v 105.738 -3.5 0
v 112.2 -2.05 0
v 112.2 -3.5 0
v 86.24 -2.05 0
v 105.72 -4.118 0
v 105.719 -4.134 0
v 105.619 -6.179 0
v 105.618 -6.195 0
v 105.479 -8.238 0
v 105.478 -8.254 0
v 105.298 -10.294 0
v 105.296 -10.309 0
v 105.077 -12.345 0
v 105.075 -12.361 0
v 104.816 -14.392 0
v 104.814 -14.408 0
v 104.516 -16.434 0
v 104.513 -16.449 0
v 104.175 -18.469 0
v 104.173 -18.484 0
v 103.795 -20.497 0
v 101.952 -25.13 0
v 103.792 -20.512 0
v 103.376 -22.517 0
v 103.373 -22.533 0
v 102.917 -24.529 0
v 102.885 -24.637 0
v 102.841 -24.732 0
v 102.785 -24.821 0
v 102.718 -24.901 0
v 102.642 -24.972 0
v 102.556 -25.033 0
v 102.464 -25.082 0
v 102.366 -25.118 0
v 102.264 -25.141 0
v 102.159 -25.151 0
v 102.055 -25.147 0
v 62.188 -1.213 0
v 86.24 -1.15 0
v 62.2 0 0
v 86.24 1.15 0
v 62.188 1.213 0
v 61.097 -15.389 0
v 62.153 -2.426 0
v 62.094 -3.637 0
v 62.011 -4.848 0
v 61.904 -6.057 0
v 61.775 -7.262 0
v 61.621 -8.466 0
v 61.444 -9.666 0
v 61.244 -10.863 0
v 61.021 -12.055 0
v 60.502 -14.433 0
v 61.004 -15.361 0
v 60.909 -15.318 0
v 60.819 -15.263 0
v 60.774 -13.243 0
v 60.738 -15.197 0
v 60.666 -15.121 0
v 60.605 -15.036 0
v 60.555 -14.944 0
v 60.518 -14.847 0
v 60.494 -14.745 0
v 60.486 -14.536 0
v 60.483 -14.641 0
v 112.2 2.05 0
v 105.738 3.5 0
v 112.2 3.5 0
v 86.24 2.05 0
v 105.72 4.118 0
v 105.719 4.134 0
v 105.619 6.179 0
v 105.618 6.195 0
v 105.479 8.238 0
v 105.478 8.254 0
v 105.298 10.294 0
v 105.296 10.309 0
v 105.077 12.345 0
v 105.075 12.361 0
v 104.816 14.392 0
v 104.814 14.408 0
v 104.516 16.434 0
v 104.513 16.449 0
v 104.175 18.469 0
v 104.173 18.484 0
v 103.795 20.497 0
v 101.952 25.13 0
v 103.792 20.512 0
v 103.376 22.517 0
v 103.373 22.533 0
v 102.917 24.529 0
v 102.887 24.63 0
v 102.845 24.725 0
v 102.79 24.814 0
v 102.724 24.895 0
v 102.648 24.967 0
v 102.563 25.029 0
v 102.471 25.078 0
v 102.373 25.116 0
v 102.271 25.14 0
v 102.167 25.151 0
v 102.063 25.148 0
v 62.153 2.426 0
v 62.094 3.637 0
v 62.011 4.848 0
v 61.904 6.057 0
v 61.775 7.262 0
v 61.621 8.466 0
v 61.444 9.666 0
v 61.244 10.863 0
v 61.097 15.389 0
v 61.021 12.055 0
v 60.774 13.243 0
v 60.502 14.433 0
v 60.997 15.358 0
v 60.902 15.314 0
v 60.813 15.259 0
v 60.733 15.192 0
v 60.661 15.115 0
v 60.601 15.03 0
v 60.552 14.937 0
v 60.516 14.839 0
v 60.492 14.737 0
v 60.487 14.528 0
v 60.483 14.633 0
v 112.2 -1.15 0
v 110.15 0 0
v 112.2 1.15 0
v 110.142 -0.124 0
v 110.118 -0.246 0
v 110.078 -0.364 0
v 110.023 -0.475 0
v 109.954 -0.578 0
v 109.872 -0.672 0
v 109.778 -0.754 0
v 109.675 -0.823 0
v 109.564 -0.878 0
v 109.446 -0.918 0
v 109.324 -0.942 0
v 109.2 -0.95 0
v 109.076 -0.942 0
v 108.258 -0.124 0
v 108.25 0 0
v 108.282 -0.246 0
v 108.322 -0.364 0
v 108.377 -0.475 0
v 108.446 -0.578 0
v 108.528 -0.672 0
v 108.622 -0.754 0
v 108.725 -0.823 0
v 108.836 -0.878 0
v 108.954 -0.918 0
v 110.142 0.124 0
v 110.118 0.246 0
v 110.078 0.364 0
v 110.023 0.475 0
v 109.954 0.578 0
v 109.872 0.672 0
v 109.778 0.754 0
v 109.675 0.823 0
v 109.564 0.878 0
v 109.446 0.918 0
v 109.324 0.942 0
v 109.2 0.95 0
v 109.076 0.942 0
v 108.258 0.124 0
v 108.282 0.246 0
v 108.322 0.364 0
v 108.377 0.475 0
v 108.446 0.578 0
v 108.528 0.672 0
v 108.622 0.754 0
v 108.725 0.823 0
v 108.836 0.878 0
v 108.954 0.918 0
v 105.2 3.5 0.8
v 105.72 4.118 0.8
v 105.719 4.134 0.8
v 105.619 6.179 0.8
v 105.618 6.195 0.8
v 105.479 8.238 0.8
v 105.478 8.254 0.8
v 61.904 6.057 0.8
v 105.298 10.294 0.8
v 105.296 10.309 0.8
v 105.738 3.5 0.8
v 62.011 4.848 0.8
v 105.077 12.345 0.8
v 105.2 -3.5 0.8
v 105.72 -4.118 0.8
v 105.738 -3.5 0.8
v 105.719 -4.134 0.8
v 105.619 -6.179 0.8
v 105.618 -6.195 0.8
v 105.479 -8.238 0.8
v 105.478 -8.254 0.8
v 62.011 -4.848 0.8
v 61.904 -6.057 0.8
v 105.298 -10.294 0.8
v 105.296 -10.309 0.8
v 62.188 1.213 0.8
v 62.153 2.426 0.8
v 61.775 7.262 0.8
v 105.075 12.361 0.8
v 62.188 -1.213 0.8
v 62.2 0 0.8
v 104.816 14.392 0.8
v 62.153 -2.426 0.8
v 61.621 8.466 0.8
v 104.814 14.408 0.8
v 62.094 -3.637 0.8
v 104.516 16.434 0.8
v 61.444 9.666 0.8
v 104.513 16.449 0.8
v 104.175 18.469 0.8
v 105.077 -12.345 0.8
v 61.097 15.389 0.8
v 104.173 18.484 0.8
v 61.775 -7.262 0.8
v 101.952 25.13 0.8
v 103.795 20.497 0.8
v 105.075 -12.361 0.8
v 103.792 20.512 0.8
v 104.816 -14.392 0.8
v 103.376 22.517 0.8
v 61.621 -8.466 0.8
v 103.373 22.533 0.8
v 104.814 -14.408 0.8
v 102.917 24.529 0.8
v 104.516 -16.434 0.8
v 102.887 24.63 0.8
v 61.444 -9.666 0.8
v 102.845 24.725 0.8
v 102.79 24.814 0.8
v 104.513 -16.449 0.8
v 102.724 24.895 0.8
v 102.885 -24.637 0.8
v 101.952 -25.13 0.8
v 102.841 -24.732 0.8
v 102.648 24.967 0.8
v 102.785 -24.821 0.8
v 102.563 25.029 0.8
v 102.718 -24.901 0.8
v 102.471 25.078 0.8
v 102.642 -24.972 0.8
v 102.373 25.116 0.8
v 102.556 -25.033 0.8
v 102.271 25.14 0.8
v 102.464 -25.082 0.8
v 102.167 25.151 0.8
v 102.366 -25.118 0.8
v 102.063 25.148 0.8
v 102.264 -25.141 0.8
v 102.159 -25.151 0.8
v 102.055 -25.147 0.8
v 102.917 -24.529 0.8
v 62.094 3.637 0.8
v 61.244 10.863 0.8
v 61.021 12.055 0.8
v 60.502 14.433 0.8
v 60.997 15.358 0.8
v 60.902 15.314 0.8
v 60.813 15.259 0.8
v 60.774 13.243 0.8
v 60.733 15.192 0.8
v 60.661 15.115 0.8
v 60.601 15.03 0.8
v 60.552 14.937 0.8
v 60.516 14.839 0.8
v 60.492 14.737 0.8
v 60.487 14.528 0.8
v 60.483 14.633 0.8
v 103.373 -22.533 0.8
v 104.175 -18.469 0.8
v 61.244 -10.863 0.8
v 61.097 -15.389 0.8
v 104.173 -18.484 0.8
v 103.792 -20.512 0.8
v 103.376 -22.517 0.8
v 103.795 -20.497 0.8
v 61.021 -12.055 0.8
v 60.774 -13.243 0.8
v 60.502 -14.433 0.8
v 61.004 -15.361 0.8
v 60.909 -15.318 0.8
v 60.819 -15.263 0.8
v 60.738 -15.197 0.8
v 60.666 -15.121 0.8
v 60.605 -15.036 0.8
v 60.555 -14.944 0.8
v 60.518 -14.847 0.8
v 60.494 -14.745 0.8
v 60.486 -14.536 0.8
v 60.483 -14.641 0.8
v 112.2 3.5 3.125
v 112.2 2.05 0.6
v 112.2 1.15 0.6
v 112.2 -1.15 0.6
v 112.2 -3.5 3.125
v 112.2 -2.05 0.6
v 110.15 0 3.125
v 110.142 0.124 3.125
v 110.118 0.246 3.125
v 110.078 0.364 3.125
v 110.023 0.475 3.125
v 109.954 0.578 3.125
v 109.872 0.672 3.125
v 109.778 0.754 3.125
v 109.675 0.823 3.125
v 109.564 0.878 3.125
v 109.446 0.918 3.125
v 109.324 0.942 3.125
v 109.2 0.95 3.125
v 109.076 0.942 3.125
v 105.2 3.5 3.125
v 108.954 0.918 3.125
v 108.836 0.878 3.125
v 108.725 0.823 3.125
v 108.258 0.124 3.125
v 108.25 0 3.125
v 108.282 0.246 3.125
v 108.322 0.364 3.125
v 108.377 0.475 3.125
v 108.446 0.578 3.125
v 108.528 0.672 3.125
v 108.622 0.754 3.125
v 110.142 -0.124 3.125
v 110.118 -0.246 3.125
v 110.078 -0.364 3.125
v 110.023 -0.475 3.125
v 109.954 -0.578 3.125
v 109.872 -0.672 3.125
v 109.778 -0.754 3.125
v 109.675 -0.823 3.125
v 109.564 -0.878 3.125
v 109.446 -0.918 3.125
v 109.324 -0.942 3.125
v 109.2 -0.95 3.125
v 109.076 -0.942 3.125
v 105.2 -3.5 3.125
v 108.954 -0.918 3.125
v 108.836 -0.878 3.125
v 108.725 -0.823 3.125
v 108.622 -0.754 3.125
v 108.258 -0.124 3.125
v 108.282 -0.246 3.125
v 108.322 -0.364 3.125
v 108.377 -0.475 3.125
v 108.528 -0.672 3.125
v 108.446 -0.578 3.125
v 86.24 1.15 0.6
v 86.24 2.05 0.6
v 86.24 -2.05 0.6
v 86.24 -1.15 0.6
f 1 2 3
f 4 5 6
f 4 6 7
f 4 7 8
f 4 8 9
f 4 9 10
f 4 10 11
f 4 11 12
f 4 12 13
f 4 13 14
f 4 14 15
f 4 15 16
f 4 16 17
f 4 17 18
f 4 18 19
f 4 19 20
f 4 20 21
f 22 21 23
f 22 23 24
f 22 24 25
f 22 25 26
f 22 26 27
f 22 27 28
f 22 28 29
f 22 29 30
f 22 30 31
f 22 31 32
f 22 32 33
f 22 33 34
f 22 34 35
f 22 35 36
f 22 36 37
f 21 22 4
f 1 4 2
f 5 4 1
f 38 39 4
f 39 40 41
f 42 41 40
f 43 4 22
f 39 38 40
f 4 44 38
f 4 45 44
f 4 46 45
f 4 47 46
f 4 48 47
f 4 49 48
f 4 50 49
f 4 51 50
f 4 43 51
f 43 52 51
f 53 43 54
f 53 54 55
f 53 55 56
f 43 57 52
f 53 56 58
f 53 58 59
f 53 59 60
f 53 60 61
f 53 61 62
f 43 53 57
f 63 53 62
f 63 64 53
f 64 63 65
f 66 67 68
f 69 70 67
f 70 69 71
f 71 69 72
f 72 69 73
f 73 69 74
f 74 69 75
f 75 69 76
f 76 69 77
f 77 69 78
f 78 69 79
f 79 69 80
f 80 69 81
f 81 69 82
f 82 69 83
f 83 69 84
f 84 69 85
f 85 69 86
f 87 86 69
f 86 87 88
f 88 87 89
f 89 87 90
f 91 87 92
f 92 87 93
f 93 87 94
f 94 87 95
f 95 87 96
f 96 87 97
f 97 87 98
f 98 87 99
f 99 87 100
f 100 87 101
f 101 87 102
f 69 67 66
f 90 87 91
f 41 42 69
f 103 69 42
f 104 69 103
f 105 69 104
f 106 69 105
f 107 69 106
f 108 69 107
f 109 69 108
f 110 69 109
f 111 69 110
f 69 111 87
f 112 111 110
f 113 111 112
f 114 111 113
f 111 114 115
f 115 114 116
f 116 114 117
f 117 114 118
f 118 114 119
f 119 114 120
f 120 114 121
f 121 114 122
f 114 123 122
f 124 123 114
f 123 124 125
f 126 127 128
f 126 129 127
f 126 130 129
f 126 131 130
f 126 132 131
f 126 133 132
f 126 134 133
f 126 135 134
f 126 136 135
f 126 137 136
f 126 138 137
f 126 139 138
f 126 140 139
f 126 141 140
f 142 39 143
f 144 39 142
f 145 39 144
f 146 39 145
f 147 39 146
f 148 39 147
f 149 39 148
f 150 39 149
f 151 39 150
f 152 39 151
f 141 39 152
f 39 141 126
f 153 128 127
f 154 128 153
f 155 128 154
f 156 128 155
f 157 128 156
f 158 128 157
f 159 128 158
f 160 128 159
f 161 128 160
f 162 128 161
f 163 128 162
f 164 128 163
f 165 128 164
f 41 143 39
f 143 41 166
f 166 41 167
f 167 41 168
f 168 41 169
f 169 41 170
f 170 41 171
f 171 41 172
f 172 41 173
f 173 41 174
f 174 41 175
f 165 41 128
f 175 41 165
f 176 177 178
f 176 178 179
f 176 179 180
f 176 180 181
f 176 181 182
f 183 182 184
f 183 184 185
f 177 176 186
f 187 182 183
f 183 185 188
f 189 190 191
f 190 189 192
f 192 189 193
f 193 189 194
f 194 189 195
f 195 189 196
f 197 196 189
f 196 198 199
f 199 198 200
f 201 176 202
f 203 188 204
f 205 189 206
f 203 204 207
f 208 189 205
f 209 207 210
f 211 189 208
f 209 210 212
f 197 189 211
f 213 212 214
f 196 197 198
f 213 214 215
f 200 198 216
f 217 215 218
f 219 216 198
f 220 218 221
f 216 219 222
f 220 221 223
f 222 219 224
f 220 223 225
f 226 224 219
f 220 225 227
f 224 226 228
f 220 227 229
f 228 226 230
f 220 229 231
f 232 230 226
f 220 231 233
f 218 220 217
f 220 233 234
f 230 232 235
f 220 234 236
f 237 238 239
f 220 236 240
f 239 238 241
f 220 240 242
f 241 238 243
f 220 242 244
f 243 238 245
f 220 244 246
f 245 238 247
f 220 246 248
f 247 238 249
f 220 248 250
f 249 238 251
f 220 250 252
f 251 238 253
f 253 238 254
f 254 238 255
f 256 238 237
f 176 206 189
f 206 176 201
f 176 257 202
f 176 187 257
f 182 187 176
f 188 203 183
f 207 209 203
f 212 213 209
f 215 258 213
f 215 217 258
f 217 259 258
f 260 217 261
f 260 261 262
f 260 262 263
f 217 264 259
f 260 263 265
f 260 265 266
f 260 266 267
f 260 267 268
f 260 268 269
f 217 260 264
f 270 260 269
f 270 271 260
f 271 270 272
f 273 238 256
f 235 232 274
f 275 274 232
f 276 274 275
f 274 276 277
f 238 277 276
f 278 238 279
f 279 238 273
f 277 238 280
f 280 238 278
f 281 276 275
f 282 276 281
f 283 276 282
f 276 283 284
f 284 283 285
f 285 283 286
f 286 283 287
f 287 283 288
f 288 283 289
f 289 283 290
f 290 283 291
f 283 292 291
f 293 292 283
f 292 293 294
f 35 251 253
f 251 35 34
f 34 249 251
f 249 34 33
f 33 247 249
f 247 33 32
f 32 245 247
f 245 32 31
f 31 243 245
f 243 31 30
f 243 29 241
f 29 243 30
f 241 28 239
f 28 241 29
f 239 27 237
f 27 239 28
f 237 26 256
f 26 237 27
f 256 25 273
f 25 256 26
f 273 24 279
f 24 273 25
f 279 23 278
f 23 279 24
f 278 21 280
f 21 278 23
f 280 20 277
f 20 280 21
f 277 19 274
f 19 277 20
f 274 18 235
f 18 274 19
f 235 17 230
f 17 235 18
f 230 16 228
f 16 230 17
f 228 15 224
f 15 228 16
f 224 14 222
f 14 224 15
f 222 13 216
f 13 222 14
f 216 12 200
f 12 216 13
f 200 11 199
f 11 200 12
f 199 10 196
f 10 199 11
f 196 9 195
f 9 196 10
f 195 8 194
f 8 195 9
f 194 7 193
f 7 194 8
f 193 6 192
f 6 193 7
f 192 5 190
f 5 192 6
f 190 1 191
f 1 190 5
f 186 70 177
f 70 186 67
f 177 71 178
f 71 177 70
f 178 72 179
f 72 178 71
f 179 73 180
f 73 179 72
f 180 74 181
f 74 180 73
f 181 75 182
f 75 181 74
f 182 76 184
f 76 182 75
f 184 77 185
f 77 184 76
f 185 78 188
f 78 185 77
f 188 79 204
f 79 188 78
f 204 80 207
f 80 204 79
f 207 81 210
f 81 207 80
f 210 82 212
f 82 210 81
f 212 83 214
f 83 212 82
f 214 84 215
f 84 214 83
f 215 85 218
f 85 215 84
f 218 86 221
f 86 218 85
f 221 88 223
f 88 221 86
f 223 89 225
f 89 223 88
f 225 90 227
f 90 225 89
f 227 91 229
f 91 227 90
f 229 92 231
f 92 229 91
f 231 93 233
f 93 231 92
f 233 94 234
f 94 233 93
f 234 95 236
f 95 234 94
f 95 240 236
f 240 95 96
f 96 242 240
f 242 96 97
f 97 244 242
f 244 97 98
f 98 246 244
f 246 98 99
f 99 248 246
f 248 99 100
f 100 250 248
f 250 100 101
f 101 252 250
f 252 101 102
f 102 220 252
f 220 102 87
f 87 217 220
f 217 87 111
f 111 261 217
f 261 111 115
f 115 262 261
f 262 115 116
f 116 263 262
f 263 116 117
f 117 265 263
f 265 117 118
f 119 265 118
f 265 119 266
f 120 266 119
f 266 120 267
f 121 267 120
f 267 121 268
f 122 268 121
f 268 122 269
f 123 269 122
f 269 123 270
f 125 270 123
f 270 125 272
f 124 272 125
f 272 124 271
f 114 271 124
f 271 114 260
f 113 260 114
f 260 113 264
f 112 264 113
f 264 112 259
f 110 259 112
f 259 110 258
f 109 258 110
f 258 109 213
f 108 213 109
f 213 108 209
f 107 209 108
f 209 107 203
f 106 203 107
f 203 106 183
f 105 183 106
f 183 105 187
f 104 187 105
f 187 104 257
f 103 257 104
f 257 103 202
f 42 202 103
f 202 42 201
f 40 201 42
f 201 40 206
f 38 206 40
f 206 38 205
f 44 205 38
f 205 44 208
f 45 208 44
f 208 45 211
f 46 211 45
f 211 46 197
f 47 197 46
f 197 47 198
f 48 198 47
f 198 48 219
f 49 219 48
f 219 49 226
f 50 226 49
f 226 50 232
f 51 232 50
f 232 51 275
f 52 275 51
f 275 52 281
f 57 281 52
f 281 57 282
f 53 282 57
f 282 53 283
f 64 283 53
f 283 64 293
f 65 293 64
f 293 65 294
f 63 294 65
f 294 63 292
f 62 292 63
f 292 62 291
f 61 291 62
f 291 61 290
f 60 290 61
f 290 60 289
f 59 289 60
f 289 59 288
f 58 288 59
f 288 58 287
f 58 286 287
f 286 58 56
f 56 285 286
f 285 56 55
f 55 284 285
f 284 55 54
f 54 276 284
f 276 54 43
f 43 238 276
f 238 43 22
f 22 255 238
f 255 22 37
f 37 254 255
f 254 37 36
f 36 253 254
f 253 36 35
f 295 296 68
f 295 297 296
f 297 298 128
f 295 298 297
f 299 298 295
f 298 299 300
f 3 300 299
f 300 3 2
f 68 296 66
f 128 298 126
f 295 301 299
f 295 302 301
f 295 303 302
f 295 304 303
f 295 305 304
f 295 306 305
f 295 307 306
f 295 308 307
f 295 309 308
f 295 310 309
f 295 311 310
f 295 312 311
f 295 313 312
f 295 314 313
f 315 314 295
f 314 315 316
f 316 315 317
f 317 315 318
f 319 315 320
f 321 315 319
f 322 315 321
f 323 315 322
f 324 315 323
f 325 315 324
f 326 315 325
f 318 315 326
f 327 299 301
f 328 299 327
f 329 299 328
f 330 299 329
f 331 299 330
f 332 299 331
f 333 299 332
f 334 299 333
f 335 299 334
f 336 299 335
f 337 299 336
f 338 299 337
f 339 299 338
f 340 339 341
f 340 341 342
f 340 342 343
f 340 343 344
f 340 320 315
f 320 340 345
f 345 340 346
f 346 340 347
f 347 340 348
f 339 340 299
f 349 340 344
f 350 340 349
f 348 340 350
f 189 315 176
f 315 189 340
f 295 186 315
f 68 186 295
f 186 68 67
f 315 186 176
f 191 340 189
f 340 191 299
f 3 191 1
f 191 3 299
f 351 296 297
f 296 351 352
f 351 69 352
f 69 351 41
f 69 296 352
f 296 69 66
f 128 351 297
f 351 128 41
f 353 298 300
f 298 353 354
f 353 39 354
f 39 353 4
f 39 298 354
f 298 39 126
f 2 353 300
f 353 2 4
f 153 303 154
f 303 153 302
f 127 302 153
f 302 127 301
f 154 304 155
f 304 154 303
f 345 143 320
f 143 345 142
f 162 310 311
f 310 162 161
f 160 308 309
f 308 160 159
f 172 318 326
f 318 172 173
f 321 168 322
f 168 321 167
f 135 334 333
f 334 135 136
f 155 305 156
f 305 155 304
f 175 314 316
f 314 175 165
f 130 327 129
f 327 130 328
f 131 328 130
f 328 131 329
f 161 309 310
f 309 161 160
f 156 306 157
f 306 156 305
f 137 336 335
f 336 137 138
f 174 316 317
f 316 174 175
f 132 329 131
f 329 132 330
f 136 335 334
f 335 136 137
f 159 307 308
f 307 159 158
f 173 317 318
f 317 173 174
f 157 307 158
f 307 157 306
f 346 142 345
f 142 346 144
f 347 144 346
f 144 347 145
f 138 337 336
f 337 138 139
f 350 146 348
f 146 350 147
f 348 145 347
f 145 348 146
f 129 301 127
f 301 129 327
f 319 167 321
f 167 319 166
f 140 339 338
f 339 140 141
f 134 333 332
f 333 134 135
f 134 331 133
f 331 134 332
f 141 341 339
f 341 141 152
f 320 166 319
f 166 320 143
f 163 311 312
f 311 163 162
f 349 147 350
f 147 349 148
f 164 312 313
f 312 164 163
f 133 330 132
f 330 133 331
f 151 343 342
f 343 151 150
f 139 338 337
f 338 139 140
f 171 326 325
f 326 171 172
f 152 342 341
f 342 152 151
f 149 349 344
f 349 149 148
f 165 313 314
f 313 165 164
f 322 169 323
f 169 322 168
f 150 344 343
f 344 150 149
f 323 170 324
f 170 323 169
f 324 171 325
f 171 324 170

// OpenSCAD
// file: parameters.scad
// =============================================================================
// Gen-CF — nightly 2026-10-14 (physics_scorer, honest magpylib watts)
// Stator-only upgrade for an existing Gen-CA: the R84 arcs, hubs and Ø194 steel stay as they are; a new annular 12-bobbin stator with 4.65 mm copper (Gen-CD-style thin window) and r63–105 bobbins replaces the old r64–104 × 4.95 mm stator, together with a shorter gap sleeve and matching frame rods / bridges. Frame rods pushed to R108.5 for ≥1.0 mm web to the bays. No new magnets or steel. Scans showed no R84 stator beats Gen-CA’s own 8.492 W; this kit is the best distinct modular swap (≈8.41 W scan, ≈375 m).
// Clocking 0 deg (magnets N facing S) + D-flat keyed bore + index notch + flip-symmetric hole map.
// Windable 2-piece bobbin; turns = physics_scorer turns_fit; copper only between flanges.
// Steel back-iron: 2× Ø194 × 4.76 mm (3/16") mild-steel discs (steel_backiron_disc.dxf); magnets sit ON the steel
// (through-pockets) -> score with --back-iron. Night 2026-10-14.
// =============================================================================
topology            = "dual_rotor";

// --- Wire / winding (physics_scorer winding-fit) -------------------------------
wire_awg            = 26;
wire_od             = 0.45;     // insulated OD mm (bare 0.405)
fill_realistic      = 0.65;     // insulated-wire area / window (DENSE layered wind with a jig; scorer cap 0.65)
turns               = 347;       // = physics_scorer turns_fit (do NOT raise)
coil_former_type    = "bobbin";
coil_core_inset     = 18.26;     // radial copper build: hub = copper boundary inset by this
wind_build_axial    = 0.0;      // nothing proud of the flanges
wind_build_radial   = 0.0;

// --- Bobbin (base + lid) ---------------------------------------------------------
coil_id_r           = 63.00;    // copper boundary sector
coil_od_r           = 105.00;
span_deg            = 26.82;    // = pitch - 2*asin((wall+0.85)/coil_id_r) -> >=1.2 mm stator web
former_web          = 4.65;     // copper height between flanges (TALL copper: steel keeps Bz up)
flange_t            = 0.80;     // >= 0.8 mm FDM wall rule (tall winds push on the flanges)
wall                = 0.80;     // flange lip beyond copper
former_bare_h       = former_web + 2 * flange_t;
coil_envelope_h     = former_bare_h + 2 * wind_build_axial;
tab_w               = 7.0;
tab_len             = 7.0;
tab_h               = former_bare_h / 2;
pin_d               = 1.9;      // 1.75 mm filament locating pin
coil_mount_r        = coil_od_r + 0.2 + 4.0;
lead_y              = 1.6;
lead_slot_w         = 0.9;
lead_groove_d       = 0.6;

// --- Gap -------------------------------------------------------------------------
run_clear           = 0.50;     // rotor face -> flange
gap_spacer_h        = run_clear + wind_build_axial;
m2m                 = coil_envelope_h + 2 * run_clear;   // rotor face to rotor face (= gap_sleeve length)

// --- Stator ----------------------------------------------------------------------
coil_stations       = 12;
bay_clear           = 0.35;     // 0.35 mm: bobbin BASES print IN PLACE inside the stator bays (print-in-place gap), then pop out
stator_thick        = former_bare_h;                        // bobbins flush both faces
stator_od           = 228;
shaft_clear_stator  = 14.0;     // stator is static; gap sleeve OD 12 spins inside
stator_ir           = 57.85;    // ANNULAR stator: open centre (nested one-plate pack); inner rim 4.0 mm

// --- Rotor(s) --------------------------------------------------------------------
magnet_Br           = 1.43;     // N52
magnet_d_large      = 20.0;
magnet_h_large      = 5.0;      // one O20x5 per pocket
magnet_h_small      = 5.0;      // unused: no O5 pockets in this kit
halbach_magnetisation = "none";  // NO O5 assist magnets in this kit (scan: they lower the 4-pole score)
rotor_b_same_axis   = true;     // same-index magnets share one axis: N faces S across the gap
large_pocket_d      = 20.3;
small_pocket_d      = 5.3;
pocket_h            = 5.00;     // THROUGH the carrier: magnet back face sits on the steel disc (FLUSH seat: carrier = magnet height, magnet face level with the rotor face)
large_n             = 8;
R_large             = 84.0;
small_r_list        = [];       // no O5 pockets
carrier_od          = 194.0;
ring_ir             = 70.85;    // RING rotor: PLA magnet ring r ring_ir..carrier_od/2 (steel disc = structural rotor)
hub_flange_od       = 74.0;     // separate rotor_hub flange (inside the ring, flush with the ring face)
csk_d               = 6.6;      // M3 countersunk head pocket (ISO 10642 head 6.0 nominal) on the stator face
csk_depth           = 1.55;     // = (csk_d - m3_clear) / 2: 90 deg cone; head sits 0.3 mm below the face
n_seg               = 8;        // magnet-carrier ARCS per rotor (segmented carrier)
seg_deg             = 360 / n_seg;
seg_start           = -22.5;   // arc edge angle (between pocket 0 and its clamp bolt)
seg_kerf_deg        = 0.4;      // gap between neighbouring arcs on the steel
carrier_thick       = pocket_h;
hub_h               = 12.0;     // > steel_t + insert: radial set-screw clears the steel
hub_od              = 24.0;     // slim hub so the M4 brace rods fit at R~18 inside the coil ring
hub_insert_d        = 4.0;      // M3 heat-set insert, radial, bears on the D-flat
rotor_b_offset_deg  = 0.0;      // CLOCKING: magnets directly opposite
shaft_key           = "dflat";
dflat_depth         = 0.5;      // 8 mm shaft with 0.5 mm flat (7.5 across flat)
index_notch_d       = 3.0;

// --- Steel back-iron (buyable laser-cut) -------------------------------------------
steel_t             = 4.76;      // mild steel thickness (image method ignores it; sized from steel_flux.py so the return path stays well below saturation)
steel_center_hole   = 26.0;     // slips over the rotor hub (OD 24)
steel_od            = carrier_od;   // steel disc OD = rotor carrier OD

// --- Modular MAX interface ----------------------------------------------------------
shaft_bore          = 8.35;
dflat_x             = 4.0 - dflat_depth + (shaft_bore - 8.0) / 2;
bearing_d           = 21.85;
bearing_h           = 7.2;
m3_clear            = 3.5;
bolt_r_inner        = 30.0;     // M3 steel-disc clamp bolts (inside the magnet ring)
bolt_n_inner        = 4;
bolt_inner_angles   = [0, 90, 180, 270];
bolt_r_outer        = 84.0;     // second M3 steel-disc clamp ring
bolt_outer_angles   = [22.5, 67.5, 112.5, 157.5, 202.5, 247.5, 292.5, 337.5];
flange_bolt_r       = 108.5;     // frame rods: OUTSIDE the rotor OD (rotors spin inside them)
flange_bolt_n       = 4;
flange_bolt_offset  = 45.00;    // between coil stations -> never cuts a lead groove/tab
brace_r             = 18.0;
brace_d             = 4.3;      // temporary M4 jack rods (assembly only)
brace_n             = 4;
brace_angles        = [45, 135, 225, 315];          // flip-symmetric

spacer_pad_od       = 14.0;
spacer_pad_id       = m3_clear;
endbell_od          = 227.0;
endbell_thick       = 8.0;
endbell_shaft_clear = 10.0;
collar_h            = 10.0;
standoff_od         = 9.0;
frame_standoff_h    = run_clear + carrier_thick + hub_h + collar_h + 2.0;
sleeve_od           = 12.0;
plate_max_mm        = 410;

$fn = 64;
// main file
// Gen-CF — bobbin LID (top flange + locating tab). Print x12, flange face DOWN on the bed.
// CA-glue onto the hub top BEFORE winding. Tab = lap joint into the stator tab pocket; 1.75 mm filament
// pin through pin hole + stator ledge, trim flush. Lead slots carry both leads flush.
include <parameters.scad>;
$fn = 48;
module sector_2d(r_in, r_out, ang) {
    polygon([
        for (a = [-ang/2 : ang/24 : ang/2]) [r_in*cos(a), r_in*sin(a)],
        for (a = [ang/2 : -ang/24 : -ang/2]) [r_out*cos(a), r_out*sin(a)]
    ]);
}
module footprint_2d() { offset(r=wall) sector_2d(coil_id_r, coil_od_r, span_deg); }
module hub_2d()       { offset(delta=-coil_core_inset) sector_2d(coil_id_r, coil_od_r, span_deg); }

difference() {
    union() {
        linear_extrude(flange_t) footprint_2d();
        translate([coil_od_r + 0.2, -tab_w/2, 0]) cube([tab_len, tab_w, tab_h]);
    }
    translate([coil_mount_r, 0, -0.1]) cylinder(d=pin_d, h=tab_h + 1);
    for (y = [lead_y, -lead_y])
        translate([coil_od_r - coil_core_inset - 0.5, y - lead_slot_w/2, -0.1])
            cube([coil_core_inset + tab_len + 2, lead_slot_w, lead_groove_d + 0.1]);
}
